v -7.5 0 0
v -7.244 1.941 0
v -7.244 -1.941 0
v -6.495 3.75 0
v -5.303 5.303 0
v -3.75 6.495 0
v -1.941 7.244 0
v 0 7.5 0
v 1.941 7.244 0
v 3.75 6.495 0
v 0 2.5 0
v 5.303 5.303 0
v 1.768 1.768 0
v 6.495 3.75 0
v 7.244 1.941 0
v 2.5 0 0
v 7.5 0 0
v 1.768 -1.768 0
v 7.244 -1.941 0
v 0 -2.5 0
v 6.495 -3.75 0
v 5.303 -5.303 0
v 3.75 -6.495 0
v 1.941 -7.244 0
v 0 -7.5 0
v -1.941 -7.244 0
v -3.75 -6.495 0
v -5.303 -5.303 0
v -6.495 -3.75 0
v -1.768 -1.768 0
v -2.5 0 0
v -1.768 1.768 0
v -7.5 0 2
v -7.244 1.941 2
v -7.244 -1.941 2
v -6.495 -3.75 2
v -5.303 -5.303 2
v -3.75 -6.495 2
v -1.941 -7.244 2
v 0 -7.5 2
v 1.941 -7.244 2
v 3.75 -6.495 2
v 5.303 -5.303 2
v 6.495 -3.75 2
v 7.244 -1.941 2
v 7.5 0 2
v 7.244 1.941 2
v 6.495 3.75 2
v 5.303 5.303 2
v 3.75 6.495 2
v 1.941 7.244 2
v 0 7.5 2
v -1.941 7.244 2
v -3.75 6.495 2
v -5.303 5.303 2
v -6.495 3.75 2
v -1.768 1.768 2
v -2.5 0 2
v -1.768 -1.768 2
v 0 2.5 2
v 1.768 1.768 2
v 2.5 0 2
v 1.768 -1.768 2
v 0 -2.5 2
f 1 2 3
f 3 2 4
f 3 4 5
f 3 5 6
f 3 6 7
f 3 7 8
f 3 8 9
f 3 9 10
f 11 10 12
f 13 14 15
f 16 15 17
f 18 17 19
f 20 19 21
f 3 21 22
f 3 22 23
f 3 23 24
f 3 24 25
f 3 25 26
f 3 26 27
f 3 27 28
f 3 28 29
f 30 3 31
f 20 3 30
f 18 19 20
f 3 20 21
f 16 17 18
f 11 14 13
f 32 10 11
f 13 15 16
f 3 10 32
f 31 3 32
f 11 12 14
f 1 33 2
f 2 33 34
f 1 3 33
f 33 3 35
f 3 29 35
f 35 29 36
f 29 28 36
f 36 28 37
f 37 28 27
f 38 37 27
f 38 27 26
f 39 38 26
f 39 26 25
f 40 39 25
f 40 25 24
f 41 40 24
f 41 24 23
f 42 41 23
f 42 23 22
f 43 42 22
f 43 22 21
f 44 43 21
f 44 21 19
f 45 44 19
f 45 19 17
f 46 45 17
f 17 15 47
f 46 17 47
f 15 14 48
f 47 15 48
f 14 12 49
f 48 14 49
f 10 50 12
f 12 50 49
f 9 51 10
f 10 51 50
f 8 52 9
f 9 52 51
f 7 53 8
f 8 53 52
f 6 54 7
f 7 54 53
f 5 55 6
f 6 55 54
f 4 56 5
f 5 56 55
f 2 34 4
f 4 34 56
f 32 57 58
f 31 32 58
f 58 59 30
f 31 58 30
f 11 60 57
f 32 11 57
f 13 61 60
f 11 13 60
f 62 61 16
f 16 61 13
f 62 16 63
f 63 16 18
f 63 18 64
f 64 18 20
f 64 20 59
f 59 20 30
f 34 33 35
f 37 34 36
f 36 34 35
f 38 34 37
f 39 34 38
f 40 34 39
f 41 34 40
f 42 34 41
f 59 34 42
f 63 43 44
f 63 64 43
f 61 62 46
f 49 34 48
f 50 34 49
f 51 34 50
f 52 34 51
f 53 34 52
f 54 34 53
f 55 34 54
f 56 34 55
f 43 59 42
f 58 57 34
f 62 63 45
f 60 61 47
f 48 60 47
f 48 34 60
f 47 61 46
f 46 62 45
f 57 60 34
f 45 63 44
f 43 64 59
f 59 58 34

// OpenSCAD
module washer (height=2, diameter=8, hole_diameter=5)
{
	difference ()
	{
		cylinder (h=height, r=diameter/2);
		translate([0,0,-0.5]) cylinder (h=height+1, r=hole_diameter/2);

	}
}

washer(height=2, diameter=15);
